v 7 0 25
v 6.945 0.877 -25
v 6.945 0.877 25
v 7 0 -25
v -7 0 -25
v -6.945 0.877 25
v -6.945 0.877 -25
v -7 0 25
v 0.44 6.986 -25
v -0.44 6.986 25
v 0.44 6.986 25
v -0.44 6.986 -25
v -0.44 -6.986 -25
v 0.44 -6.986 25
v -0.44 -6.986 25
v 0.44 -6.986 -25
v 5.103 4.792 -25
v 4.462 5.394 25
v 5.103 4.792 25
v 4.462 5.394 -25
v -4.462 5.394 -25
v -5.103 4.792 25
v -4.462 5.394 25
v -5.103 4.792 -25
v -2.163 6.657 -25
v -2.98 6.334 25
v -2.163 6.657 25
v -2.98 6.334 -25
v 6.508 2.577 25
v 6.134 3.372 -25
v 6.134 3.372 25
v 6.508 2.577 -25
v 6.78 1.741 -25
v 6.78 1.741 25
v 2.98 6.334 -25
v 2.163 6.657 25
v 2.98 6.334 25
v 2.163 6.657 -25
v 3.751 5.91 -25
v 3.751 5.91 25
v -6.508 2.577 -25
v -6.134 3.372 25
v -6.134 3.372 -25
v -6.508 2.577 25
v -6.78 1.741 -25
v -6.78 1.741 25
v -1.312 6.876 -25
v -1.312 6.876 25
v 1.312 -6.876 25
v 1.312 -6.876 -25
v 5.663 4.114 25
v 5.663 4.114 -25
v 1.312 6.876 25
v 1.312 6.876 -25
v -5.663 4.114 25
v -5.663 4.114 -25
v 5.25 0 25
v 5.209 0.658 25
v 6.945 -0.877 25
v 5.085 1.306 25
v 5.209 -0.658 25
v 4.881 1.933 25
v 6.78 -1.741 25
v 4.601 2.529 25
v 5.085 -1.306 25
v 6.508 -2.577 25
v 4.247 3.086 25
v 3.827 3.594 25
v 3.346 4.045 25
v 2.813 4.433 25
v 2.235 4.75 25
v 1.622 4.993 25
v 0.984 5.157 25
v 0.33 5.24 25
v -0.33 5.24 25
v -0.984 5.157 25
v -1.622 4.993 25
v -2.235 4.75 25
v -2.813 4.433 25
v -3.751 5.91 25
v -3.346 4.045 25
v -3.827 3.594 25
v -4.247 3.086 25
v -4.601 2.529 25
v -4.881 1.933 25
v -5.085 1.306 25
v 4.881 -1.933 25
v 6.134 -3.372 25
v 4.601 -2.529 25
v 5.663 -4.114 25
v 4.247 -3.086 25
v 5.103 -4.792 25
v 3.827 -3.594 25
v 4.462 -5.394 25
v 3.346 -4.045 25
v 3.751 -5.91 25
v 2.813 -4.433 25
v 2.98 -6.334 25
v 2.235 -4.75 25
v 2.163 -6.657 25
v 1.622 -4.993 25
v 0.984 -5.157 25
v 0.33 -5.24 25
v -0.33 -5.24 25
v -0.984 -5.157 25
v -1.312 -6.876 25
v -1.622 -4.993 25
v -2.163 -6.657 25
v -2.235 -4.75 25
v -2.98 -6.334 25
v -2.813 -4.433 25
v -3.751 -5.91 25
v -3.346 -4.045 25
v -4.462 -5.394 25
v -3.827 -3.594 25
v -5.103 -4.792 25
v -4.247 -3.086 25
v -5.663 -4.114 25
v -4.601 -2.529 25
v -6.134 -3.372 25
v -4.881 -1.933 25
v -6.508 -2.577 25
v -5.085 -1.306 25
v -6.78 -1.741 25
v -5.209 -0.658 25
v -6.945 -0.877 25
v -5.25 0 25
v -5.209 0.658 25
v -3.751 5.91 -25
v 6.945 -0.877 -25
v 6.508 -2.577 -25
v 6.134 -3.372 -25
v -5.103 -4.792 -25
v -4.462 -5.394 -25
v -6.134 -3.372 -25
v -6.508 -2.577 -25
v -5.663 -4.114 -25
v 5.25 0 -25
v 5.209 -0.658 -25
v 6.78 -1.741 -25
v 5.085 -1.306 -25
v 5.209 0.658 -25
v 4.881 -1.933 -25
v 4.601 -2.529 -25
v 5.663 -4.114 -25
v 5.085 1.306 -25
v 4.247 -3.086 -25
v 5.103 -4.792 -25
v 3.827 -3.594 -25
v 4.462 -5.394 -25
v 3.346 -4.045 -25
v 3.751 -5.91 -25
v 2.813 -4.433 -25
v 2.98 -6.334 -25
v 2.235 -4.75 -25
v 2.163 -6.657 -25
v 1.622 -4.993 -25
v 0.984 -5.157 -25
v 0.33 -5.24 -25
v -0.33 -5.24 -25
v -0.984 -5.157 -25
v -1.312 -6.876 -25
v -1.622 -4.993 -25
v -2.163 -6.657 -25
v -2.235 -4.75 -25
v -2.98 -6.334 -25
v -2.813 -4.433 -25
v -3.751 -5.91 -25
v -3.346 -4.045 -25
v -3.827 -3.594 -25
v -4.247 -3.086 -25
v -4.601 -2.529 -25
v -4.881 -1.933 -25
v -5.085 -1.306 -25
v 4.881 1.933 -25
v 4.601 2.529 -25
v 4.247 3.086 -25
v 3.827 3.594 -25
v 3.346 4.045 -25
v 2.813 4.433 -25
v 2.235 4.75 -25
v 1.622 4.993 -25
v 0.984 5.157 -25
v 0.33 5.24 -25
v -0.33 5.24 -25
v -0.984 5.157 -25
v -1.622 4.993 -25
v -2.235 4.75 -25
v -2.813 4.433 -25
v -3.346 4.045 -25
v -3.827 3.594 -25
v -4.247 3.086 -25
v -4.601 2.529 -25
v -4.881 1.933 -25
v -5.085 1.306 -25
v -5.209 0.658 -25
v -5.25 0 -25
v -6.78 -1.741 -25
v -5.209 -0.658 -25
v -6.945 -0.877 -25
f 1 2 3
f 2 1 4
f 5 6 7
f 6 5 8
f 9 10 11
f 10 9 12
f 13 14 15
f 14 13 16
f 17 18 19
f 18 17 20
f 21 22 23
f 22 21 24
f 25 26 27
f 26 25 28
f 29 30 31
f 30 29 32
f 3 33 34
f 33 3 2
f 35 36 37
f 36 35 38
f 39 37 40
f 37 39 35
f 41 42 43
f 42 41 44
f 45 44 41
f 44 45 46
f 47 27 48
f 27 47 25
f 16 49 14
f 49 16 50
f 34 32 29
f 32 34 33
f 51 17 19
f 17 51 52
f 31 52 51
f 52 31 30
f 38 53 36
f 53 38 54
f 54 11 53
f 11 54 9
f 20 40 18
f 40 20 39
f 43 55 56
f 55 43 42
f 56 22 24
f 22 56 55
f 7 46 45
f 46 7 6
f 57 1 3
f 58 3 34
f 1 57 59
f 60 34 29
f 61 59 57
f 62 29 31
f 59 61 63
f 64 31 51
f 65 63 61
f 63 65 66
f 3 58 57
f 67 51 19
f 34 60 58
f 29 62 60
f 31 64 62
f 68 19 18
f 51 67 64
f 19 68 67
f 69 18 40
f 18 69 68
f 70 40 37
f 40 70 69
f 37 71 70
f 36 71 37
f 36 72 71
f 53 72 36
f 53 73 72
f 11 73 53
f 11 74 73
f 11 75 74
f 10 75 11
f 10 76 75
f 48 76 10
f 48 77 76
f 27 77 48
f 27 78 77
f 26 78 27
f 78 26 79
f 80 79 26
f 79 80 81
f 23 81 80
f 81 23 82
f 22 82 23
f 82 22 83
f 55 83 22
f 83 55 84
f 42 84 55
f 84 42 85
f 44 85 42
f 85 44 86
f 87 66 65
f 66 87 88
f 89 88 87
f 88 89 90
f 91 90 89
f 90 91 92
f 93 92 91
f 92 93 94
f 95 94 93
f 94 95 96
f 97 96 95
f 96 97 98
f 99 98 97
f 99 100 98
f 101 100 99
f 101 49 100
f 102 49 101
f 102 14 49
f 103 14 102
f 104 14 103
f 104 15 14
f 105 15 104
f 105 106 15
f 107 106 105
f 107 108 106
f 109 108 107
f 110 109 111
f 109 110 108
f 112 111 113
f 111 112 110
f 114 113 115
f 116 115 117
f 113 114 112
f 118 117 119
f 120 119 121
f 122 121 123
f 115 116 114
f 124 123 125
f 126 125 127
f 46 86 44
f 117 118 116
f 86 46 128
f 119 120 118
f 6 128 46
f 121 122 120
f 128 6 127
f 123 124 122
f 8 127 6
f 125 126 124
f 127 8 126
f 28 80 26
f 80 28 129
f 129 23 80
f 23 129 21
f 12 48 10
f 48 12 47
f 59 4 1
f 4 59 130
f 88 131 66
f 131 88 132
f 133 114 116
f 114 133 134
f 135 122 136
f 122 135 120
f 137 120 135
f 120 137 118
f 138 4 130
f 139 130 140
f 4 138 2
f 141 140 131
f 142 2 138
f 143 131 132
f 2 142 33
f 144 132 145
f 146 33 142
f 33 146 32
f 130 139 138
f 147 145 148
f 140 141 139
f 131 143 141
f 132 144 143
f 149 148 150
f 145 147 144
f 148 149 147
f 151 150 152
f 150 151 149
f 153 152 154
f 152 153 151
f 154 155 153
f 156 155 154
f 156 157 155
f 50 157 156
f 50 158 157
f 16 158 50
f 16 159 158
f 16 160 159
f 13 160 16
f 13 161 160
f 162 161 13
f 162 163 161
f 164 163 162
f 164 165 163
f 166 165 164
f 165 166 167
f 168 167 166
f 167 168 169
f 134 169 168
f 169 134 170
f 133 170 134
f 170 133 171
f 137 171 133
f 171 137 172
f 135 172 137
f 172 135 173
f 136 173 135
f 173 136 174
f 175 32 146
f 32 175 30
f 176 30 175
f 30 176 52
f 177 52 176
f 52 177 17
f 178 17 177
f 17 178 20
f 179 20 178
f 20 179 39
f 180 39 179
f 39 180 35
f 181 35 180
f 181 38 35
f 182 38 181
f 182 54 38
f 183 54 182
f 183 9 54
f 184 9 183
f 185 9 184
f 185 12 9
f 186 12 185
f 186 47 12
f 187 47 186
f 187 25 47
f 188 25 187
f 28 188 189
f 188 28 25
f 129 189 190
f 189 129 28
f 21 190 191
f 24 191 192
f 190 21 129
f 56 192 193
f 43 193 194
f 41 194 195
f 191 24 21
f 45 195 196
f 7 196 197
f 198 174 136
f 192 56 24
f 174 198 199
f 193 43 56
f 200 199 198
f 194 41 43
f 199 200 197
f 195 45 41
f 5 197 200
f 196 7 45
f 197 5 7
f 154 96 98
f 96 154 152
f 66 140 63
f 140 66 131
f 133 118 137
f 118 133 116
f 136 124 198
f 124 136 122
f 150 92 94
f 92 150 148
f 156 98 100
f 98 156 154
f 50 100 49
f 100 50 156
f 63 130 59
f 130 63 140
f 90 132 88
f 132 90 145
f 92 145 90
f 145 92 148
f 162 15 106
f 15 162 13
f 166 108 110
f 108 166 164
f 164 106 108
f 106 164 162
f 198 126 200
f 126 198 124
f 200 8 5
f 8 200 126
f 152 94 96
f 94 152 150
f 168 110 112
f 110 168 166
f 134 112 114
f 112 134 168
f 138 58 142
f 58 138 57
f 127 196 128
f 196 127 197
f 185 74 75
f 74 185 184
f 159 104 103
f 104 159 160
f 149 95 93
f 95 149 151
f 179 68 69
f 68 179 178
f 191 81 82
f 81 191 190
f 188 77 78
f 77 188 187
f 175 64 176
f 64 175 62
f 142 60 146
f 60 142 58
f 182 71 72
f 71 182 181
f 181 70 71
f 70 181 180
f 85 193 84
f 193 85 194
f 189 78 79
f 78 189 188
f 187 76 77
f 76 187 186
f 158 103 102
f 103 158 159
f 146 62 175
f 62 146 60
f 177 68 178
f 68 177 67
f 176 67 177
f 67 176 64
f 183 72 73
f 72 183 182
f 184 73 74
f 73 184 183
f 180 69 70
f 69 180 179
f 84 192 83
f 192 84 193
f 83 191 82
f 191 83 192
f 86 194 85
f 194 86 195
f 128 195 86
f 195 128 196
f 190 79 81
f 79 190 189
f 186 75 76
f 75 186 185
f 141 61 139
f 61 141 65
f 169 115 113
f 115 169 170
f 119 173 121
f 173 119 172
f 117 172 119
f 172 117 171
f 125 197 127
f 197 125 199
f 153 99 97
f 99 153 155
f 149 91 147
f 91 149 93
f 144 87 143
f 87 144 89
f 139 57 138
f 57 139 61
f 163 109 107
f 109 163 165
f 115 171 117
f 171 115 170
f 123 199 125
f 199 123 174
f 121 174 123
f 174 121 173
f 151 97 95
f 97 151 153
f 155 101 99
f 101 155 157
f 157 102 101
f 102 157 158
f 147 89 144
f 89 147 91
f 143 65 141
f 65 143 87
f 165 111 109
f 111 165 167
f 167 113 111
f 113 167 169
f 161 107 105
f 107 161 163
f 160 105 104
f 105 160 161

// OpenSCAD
$fn = 50;


difference() {
	union() {
		translate(v = [0, 0, -25.0000000000]) {
			cylinder(h = 50, r = 7.0000000000);
		}
	}
	union() {
		translate(v = [0, 0, -100.0000000000]) {
			cylinder(h = 200, r = 5.2500000000);
		}
	}
}
